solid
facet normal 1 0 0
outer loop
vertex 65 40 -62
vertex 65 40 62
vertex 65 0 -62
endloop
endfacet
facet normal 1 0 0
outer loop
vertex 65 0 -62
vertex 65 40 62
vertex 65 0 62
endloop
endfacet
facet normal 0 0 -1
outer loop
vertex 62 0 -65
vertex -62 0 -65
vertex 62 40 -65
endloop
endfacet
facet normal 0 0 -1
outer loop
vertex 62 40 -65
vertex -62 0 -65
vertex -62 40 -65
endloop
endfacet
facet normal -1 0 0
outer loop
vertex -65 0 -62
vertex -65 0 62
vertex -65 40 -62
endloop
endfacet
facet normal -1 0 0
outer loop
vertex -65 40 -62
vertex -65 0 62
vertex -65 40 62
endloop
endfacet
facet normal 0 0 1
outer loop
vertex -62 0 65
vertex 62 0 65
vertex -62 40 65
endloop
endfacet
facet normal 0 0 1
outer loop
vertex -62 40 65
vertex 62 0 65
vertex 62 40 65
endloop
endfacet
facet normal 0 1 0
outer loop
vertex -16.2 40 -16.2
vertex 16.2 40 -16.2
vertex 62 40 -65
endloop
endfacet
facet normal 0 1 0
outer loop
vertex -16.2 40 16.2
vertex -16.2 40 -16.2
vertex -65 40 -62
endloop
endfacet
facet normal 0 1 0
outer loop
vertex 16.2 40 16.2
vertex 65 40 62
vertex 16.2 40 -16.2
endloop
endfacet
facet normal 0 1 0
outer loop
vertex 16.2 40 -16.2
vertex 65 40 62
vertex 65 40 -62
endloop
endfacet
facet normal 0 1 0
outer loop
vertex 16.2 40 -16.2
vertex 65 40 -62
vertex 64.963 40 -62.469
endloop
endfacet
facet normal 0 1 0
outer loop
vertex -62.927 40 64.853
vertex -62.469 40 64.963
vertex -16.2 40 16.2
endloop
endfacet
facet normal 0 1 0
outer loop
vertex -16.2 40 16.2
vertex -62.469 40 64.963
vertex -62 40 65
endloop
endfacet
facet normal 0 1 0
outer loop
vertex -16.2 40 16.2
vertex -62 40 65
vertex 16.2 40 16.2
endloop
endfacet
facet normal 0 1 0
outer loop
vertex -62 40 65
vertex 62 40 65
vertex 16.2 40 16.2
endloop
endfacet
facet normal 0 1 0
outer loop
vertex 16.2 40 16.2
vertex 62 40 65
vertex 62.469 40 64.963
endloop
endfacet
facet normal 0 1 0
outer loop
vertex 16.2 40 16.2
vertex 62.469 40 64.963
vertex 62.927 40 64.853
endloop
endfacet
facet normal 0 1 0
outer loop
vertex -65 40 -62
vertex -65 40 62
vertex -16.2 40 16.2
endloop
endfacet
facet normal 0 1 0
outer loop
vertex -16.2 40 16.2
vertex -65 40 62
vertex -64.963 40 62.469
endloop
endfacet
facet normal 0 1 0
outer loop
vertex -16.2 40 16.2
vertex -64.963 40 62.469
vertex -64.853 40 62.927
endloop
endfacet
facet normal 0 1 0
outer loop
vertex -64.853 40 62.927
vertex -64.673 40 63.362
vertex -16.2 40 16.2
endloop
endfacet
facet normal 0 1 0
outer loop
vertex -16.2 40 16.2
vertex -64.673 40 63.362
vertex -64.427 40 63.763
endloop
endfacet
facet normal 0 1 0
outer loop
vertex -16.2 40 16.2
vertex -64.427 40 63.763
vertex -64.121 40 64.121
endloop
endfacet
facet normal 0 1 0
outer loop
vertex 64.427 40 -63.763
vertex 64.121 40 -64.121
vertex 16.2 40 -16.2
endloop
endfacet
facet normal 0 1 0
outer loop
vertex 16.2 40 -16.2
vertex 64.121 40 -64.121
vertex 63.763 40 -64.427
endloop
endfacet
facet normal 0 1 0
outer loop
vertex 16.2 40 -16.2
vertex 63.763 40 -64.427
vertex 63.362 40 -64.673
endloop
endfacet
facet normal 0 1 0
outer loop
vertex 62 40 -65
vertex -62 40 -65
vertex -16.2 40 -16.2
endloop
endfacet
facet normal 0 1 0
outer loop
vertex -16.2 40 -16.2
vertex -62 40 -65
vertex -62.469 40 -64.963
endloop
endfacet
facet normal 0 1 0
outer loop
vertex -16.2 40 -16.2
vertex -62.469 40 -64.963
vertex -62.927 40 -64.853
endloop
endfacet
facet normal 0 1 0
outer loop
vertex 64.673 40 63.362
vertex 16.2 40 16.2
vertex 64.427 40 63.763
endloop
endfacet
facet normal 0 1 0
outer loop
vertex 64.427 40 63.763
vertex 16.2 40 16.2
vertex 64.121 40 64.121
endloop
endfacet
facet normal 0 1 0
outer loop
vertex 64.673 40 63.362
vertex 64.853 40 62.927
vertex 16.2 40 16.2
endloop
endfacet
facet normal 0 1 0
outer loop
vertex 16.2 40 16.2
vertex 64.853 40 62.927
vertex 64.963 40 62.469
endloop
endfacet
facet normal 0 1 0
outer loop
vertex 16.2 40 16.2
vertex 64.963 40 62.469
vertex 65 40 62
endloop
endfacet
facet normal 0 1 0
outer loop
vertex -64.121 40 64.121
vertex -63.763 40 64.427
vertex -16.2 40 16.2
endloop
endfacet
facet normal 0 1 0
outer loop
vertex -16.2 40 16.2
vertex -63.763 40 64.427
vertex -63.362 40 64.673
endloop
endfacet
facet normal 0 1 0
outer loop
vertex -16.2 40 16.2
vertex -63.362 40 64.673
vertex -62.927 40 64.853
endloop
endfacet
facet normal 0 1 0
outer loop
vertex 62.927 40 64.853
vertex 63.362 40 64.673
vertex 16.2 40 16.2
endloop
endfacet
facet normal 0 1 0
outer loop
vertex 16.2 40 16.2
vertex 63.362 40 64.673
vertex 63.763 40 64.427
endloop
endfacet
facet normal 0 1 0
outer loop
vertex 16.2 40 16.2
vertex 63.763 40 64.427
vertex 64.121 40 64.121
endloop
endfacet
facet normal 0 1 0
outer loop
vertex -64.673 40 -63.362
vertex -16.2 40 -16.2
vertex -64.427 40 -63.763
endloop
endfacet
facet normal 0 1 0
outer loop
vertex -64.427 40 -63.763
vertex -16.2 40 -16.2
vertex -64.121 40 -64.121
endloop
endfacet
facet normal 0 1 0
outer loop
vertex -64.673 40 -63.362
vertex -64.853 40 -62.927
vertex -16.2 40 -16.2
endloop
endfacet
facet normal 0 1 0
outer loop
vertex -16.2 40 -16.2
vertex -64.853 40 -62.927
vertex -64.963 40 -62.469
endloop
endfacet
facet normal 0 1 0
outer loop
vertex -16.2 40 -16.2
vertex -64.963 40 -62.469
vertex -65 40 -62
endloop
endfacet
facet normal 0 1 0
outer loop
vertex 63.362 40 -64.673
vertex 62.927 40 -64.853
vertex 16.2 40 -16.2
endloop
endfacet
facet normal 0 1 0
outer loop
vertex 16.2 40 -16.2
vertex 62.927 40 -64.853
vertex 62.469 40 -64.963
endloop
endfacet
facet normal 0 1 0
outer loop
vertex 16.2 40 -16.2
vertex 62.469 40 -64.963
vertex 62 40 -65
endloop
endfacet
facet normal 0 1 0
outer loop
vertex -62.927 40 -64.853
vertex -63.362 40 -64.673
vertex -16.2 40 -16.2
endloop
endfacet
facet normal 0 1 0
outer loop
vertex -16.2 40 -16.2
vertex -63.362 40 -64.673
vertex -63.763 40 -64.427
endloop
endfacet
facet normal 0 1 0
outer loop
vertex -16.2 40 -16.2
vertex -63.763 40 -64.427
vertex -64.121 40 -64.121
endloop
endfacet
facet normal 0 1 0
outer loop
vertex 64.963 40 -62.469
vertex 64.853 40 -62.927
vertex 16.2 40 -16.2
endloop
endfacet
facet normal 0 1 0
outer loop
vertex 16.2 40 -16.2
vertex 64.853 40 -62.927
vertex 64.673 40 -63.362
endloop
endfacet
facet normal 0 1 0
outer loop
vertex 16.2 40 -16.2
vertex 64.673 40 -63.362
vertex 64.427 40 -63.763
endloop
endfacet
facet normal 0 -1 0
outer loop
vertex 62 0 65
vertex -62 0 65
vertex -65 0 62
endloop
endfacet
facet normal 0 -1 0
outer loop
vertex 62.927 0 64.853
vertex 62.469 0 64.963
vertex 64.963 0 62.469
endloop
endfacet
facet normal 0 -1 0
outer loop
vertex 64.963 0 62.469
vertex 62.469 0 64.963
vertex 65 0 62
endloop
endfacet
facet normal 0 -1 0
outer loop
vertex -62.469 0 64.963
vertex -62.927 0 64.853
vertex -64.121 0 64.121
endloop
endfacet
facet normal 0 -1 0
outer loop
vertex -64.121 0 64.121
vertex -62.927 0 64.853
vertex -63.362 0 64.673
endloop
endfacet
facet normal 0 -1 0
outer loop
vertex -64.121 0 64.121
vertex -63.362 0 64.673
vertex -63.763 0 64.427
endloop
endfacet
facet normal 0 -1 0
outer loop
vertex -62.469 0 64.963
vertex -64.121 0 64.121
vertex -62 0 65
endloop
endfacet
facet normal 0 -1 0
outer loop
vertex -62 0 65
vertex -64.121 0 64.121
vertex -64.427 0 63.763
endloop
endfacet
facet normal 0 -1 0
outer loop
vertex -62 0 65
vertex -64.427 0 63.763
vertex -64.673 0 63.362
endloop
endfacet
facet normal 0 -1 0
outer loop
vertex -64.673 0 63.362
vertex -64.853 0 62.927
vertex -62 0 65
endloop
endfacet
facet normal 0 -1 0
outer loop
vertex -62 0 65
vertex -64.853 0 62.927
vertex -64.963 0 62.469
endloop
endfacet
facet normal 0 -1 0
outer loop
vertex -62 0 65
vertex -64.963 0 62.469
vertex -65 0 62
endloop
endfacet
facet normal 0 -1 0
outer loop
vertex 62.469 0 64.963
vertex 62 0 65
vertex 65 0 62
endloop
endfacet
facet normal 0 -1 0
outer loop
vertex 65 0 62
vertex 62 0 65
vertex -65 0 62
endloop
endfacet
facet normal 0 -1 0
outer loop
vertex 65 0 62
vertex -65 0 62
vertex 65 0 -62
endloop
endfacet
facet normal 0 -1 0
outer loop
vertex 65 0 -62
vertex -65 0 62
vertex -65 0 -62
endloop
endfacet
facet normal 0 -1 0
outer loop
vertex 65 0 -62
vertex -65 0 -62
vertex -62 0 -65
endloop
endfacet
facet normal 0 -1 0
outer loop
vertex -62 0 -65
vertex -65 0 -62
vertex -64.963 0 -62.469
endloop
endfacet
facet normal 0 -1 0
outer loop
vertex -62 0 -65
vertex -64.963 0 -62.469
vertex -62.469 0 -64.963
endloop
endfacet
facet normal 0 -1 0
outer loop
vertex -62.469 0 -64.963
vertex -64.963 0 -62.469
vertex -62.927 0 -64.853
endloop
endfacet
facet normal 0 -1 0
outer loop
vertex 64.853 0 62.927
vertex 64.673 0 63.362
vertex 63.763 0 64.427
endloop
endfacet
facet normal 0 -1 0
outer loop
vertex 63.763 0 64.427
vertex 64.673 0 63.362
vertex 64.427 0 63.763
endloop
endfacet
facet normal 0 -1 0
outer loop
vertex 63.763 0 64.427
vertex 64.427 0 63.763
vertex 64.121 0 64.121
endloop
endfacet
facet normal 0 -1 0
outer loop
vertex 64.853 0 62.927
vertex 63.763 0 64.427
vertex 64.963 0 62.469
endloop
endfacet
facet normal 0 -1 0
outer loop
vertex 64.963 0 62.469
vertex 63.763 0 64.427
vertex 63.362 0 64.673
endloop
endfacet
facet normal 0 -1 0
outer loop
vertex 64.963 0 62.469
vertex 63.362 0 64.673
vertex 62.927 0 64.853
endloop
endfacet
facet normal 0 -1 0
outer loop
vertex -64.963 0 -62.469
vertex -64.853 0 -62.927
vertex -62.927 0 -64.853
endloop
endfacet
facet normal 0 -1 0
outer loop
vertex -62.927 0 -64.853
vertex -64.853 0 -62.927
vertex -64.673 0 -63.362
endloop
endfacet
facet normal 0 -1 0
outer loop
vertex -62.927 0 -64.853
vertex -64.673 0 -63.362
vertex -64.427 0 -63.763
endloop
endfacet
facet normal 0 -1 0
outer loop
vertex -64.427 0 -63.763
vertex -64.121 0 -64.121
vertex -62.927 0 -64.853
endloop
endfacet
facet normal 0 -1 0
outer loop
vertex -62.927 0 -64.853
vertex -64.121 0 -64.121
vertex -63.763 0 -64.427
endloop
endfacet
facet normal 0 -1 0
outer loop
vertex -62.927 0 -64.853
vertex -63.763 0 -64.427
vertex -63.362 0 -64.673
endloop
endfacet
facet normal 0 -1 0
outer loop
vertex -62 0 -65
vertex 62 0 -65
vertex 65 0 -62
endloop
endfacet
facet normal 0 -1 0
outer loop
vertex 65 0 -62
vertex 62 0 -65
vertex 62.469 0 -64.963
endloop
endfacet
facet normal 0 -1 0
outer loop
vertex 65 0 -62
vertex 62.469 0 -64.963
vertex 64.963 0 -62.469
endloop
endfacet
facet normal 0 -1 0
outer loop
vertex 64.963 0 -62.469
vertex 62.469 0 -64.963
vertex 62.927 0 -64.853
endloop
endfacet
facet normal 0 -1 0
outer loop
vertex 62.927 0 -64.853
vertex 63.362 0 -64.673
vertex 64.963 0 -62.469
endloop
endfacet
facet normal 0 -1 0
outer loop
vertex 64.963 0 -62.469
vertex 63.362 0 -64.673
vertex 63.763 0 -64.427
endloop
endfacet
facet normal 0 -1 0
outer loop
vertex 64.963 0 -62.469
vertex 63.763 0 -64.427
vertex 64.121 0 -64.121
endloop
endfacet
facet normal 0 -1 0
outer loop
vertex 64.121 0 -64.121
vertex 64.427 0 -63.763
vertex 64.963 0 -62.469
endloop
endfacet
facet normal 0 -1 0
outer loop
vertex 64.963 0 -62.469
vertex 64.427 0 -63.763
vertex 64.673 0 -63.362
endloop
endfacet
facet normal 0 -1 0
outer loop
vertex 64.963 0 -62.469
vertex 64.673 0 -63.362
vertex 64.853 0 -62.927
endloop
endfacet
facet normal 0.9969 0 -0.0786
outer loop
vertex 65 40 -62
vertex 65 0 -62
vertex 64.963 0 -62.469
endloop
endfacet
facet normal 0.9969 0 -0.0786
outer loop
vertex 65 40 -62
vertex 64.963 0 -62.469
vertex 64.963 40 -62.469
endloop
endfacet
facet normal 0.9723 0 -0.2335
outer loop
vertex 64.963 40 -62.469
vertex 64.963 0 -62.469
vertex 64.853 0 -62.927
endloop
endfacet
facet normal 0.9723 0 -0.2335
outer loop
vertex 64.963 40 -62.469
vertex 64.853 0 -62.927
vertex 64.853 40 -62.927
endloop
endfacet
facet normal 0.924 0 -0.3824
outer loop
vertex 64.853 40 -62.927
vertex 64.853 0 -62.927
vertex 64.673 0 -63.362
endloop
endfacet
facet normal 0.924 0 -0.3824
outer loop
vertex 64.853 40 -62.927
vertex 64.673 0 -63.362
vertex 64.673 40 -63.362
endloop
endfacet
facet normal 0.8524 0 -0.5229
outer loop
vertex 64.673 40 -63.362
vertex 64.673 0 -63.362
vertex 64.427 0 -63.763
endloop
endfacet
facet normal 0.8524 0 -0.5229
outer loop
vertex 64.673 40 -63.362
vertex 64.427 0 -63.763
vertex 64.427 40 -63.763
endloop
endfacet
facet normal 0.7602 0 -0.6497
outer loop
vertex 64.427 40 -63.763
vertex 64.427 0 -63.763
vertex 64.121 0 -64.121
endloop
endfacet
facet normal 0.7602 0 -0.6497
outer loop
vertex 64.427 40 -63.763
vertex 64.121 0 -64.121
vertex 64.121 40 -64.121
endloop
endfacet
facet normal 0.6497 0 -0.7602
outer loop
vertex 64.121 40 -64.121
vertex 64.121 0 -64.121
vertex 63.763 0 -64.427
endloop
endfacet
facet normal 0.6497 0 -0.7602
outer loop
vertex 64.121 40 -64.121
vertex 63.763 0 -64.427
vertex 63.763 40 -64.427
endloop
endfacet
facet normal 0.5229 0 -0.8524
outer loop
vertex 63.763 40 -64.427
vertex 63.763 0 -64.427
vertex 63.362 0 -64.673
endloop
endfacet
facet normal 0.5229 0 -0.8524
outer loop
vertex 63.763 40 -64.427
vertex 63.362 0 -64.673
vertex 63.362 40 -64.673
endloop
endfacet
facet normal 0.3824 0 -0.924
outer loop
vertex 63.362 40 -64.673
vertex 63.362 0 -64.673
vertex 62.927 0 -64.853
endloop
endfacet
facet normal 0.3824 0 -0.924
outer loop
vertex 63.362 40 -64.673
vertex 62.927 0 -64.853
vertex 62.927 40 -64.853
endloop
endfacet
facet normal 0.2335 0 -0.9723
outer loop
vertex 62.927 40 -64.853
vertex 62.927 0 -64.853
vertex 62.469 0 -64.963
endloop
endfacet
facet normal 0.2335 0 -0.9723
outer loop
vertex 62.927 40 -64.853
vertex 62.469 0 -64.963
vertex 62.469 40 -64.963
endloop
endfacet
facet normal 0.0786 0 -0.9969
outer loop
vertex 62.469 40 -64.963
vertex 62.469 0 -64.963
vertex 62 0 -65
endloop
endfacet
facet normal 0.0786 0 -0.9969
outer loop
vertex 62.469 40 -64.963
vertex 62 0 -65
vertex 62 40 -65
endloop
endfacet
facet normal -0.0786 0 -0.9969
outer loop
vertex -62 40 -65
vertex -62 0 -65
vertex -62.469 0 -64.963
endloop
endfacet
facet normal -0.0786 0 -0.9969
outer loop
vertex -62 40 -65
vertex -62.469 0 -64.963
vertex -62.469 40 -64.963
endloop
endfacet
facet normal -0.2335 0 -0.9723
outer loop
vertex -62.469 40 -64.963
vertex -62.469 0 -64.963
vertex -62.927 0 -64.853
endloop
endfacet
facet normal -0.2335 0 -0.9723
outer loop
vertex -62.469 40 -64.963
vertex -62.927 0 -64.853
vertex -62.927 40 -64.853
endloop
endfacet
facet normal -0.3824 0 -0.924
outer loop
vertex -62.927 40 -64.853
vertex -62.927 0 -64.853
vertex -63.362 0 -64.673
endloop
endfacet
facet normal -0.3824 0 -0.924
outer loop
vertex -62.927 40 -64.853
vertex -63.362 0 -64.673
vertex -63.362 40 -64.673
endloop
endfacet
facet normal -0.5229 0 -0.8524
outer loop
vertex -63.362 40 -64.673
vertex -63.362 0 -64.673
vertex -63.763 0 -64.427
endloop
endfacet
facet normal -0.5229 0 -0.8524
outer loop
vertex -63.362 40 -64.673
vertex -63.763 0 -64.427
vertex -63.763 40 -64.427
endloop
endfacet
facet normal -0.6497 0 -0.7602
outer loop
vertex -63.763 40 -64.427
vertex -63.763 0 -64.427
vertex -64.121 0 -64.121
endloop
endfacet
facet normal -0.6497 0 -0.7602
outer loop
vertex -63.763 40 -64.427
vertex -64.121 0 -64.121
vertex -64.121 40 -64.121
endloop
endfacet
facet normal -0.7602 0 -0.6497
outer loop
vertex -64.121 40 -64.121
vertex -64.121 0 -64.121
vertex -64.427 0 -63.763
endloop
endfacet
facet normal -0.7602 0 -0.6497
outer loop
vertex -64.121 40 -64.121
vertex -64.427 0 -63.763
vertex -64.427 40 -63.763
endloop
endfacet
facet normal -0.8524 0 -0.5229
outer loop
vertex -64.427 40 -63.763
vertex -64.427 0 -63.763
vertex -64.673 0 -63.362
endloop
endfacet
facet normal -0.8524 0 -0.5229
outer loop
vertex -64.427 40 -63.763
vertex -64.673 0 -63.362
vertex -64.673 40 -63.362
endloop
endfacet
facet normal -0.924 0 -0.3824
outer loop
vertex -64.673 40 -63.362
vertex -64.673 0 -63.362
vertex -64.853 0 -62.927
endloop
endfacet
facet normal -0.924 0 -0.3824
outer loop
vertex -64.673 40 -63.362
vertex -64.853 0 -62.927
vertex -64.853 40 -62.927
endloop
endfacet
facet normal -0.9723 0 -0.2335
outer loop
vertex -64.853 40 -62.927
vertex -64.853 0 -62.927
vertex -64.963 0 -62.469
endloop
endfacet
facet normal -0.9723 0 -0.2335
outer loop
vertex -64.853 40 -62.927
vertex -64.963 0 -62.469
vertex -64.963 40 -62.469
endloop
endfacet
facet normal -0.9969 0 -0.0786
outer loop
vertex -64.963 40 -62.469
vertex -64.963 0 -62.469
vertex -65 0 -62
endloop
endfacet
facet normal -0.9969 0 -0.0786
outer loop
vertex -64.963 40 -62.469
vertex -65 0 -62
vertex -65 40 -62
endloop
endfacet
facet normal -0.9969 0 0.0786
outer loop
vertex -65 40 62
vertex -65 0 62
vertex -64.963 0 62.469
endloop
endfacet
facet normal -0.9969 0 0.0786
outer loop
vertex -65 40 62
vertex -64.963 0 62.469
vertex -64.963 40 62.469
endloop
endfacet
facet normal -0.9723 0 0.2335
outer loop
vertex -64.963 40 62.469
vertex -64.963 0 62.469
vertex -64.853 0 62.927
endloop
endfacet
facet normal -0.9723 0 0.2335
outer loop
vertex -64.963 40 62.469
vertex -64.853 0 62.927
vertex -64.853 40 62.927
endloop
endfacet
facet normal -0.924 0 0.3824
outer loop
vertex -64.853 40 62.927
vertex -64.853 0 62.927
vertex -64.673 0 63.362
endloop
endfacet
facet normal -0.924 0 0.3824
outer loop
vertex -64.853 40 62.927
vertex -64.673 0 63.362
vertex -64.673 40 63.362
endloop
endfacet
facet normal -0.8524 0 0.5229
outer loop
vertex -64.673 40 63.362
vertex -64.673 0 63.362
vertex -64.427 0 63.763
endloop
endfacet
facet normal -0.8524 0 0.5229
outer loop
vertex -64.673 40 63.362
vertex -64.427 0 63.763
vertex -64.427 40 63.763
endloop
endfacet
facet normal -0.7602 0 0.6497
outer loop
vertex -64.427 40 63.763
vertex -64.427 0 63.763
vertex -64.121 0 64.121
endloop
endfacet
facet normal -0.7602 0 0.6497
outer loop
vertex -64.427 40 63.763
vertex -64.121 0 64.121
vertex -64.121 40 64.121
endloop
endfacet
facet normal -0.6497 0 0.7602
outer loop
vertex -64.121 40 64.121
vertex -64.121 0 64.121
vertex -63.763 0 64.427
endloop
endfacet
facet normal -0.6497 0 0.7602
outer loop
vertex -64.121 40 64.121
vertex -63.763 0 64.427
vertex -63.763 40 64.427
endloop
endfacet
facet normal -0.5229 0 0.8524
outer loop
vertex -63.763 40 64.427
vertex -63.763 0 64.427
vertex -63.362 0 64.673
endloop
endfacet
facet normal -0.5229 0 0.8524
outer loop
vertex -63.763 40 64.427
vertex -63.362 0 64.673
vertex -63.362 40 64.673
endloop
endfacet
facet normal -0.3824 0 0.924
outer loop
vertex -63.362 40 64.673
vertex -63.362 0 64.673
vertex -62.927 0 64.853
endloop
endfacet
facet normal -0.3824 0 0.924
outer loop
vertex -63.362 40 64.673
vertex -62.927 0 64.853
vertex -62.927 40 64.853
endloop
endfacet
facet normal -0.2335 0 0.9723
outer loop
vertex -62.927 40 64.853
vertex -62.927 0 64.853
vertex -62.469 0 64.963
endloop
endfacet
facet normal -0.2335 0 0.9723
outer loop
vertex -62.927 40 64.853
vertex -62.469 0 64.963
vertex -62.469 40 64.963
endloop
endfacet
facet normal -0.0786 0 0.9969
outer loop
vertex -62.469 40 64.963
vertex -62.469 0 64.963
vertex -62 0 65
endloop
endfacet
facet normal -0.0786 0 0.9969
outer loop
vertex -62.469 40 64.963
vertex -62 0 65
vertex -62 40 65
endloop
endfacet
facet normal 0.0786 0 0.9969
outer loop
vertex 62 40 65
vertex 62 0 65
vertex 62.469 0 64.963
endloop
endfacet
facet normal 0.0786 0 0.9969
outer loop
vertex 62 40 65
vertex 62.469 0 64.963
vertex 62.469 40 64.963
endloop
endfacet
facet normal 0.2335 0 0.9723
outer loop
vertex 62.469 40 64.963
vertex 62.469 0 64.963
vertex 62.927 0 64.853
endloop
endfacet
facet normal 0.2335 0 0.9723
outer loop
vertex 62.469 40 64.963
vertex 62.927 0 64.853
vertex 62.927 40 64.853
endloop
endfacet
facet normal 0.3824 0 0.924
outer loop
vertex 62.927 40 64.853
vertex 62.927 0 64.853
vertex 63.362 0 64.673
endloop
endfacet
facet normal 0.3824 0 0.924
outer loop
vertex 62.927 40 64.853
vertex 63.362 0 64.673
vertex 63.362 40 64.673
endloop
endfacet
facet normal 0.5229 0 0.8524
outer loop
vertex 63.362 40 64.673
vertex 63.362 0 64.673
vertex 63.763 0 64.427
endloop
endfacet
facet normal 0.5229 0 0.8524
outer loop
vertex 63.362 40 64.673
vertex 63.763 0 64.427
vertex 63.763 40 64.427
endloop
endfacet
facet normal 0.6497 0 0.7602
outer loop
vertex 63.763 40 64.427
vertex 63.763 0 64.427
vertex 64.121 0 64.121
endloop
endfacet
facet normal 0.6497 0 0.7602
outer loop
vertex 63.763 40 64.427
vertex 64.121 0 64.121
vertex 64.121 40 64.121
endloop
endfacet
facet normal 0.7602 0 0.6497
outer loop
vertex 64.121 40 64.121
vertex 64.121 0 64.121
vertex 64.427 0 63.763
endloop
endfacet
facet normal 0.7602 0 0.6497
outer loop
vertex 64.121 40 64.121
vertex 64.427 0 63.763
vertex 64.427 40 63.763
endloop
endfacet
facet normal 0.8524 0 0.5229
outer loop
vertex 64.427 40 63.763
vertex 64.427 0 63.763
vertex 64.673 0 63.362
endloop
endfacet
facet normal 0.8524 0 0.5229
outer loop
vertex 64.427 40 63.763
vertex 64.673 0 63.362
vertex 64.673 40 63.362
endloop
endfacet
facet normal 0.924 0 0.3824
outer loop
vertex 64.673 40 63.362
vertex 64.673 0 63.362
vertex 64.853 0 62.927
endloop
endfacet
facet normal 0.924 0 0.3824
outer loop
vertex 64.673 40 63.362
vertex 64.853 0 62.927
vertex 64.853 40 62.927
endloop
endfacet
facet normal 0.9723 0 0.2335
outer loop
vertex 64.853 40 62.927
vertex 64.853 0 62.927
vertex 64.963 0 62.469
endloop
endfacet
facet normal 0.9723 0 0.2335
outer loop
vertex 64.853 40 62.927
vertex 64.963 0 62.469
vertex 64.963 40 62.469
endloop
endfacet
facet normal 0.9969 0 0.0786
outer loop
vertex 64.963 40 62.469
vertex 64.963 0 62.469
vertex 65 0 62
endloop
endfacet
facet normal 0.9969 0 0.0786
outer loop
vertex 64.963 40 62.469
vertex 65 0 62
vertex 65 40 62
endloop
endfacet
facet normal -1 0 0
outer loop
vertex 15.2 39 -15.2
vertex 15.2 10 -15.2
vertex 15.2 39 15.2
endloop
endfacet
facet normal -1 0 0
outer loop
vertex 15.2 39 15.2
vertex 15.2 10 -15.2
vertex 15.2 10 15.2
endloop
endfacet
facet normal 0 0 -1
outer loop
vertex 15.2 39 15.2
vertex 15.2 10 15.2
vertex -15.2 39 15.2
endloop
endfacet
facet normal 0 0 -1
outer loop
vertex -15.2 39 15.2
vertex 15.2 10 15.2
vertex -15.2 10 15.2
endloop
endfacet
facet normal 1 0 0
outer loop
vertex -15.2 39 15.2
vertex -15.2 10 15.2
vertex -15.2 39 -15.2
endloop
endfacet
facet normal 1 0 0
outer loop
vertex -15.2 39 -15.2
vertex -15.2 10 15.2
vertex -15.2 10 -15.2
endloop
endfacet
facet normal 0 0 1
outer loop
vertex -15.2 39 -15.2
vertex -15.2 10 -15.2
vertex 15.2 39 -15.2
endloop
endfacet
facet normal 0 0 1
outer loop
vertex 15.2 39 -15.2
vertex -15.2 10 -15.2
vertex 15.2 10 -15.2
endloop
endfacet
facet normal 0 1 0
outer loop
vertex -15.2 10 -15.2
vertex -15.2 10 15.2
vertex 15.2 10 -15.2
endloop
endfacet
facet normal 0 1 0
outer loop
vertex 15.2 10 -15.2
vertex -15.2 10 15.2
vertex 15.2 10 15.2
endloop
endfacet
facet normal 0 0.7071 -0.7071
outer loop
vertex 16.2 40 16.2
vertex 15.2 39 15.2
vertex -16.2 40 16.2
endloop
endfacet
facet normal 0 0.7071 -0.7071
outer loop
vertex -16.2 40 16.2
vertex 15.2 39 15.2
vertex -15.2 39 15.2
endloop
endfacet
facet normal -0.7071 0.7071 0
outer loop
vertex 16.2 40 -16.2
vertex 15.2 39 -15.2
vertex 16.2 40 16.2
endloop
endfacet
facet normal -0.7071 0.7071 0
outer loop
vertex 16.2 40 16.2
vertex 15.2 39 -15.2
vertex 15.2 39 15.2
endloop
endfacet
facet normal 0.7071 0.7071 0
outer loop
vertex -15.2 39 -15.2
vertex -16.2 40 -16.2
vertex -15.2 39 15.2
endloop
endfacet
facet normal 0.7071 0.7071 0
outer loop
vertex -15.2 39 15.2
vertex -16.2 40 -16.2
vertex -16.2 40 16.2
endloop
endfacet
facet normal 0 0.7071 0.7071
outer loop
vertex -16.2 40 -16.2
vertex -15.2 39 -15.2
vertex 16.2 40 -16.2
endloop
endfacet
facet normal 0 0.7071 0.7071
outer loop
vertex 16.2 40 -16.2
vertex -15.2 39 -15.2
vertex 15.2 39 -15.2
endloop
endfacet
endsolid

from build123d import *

# Parameters (mm, degrees)
SKETCH1_W           = 130
SKETCH1_H           = 130
BOSS_EXTRUDE1_DEPTH = 40
FILLET1_R           = 3
SKETCH2_W           = 30.4
SKETCH2_H           = 30.4
CUT_EXTRUDE1_DEPTH  = 30
CHAMFER1_SIZE       = 1


with BuildPart() as part:
    # Sketch1 → Boss-Extrude1 (new body)
    with BuildSketch(Plane(origin=(0, 0, 0), x_dir=(1, 0, 0), z_dir=(0, 1, 0))):
        Rectangle(SKETCH1_W, SKETCH1_H)
    extrude(amount=BOSS_EXTRUDE1_DEPTH)

    # Fillet1
    fillet1_edges = [part.edges().sort_by_distance(p)[0] for p in [
        (65, 20, 65),
        (-65, 20, 65),
        (-65, 20, -65),
        (65, 20, -65),
    ]]
    fillet(fillet1_edges, radius=FILLET1_R)

    # Sketch2 → Cut-Extrude1 (cut)
    with BuildSketch(Plane(origin=(0, 40, 0), x_dir=(1, 0, 0), z_dir=(0, 1, 0))):
        Rectangle(SKETCH2_W, SKETCH2_H)
    extrude(amount=-CUT_EXTRUDE1_DEPTH, mode=Mode.SUBTRACT)

    # Chamfer1
    chamfer1_edges = [part.edges().sort_by_distance(p)[0] for p in [
        (15.2, 40, 0),
        (0, 40, -15.2),
        (-15.2, 40, 0),
        (0, 40, 15.2),
    ]]
    chamfer(chamfer1_edges, length=CHAMFER1_SIZE)


solid = part.part
